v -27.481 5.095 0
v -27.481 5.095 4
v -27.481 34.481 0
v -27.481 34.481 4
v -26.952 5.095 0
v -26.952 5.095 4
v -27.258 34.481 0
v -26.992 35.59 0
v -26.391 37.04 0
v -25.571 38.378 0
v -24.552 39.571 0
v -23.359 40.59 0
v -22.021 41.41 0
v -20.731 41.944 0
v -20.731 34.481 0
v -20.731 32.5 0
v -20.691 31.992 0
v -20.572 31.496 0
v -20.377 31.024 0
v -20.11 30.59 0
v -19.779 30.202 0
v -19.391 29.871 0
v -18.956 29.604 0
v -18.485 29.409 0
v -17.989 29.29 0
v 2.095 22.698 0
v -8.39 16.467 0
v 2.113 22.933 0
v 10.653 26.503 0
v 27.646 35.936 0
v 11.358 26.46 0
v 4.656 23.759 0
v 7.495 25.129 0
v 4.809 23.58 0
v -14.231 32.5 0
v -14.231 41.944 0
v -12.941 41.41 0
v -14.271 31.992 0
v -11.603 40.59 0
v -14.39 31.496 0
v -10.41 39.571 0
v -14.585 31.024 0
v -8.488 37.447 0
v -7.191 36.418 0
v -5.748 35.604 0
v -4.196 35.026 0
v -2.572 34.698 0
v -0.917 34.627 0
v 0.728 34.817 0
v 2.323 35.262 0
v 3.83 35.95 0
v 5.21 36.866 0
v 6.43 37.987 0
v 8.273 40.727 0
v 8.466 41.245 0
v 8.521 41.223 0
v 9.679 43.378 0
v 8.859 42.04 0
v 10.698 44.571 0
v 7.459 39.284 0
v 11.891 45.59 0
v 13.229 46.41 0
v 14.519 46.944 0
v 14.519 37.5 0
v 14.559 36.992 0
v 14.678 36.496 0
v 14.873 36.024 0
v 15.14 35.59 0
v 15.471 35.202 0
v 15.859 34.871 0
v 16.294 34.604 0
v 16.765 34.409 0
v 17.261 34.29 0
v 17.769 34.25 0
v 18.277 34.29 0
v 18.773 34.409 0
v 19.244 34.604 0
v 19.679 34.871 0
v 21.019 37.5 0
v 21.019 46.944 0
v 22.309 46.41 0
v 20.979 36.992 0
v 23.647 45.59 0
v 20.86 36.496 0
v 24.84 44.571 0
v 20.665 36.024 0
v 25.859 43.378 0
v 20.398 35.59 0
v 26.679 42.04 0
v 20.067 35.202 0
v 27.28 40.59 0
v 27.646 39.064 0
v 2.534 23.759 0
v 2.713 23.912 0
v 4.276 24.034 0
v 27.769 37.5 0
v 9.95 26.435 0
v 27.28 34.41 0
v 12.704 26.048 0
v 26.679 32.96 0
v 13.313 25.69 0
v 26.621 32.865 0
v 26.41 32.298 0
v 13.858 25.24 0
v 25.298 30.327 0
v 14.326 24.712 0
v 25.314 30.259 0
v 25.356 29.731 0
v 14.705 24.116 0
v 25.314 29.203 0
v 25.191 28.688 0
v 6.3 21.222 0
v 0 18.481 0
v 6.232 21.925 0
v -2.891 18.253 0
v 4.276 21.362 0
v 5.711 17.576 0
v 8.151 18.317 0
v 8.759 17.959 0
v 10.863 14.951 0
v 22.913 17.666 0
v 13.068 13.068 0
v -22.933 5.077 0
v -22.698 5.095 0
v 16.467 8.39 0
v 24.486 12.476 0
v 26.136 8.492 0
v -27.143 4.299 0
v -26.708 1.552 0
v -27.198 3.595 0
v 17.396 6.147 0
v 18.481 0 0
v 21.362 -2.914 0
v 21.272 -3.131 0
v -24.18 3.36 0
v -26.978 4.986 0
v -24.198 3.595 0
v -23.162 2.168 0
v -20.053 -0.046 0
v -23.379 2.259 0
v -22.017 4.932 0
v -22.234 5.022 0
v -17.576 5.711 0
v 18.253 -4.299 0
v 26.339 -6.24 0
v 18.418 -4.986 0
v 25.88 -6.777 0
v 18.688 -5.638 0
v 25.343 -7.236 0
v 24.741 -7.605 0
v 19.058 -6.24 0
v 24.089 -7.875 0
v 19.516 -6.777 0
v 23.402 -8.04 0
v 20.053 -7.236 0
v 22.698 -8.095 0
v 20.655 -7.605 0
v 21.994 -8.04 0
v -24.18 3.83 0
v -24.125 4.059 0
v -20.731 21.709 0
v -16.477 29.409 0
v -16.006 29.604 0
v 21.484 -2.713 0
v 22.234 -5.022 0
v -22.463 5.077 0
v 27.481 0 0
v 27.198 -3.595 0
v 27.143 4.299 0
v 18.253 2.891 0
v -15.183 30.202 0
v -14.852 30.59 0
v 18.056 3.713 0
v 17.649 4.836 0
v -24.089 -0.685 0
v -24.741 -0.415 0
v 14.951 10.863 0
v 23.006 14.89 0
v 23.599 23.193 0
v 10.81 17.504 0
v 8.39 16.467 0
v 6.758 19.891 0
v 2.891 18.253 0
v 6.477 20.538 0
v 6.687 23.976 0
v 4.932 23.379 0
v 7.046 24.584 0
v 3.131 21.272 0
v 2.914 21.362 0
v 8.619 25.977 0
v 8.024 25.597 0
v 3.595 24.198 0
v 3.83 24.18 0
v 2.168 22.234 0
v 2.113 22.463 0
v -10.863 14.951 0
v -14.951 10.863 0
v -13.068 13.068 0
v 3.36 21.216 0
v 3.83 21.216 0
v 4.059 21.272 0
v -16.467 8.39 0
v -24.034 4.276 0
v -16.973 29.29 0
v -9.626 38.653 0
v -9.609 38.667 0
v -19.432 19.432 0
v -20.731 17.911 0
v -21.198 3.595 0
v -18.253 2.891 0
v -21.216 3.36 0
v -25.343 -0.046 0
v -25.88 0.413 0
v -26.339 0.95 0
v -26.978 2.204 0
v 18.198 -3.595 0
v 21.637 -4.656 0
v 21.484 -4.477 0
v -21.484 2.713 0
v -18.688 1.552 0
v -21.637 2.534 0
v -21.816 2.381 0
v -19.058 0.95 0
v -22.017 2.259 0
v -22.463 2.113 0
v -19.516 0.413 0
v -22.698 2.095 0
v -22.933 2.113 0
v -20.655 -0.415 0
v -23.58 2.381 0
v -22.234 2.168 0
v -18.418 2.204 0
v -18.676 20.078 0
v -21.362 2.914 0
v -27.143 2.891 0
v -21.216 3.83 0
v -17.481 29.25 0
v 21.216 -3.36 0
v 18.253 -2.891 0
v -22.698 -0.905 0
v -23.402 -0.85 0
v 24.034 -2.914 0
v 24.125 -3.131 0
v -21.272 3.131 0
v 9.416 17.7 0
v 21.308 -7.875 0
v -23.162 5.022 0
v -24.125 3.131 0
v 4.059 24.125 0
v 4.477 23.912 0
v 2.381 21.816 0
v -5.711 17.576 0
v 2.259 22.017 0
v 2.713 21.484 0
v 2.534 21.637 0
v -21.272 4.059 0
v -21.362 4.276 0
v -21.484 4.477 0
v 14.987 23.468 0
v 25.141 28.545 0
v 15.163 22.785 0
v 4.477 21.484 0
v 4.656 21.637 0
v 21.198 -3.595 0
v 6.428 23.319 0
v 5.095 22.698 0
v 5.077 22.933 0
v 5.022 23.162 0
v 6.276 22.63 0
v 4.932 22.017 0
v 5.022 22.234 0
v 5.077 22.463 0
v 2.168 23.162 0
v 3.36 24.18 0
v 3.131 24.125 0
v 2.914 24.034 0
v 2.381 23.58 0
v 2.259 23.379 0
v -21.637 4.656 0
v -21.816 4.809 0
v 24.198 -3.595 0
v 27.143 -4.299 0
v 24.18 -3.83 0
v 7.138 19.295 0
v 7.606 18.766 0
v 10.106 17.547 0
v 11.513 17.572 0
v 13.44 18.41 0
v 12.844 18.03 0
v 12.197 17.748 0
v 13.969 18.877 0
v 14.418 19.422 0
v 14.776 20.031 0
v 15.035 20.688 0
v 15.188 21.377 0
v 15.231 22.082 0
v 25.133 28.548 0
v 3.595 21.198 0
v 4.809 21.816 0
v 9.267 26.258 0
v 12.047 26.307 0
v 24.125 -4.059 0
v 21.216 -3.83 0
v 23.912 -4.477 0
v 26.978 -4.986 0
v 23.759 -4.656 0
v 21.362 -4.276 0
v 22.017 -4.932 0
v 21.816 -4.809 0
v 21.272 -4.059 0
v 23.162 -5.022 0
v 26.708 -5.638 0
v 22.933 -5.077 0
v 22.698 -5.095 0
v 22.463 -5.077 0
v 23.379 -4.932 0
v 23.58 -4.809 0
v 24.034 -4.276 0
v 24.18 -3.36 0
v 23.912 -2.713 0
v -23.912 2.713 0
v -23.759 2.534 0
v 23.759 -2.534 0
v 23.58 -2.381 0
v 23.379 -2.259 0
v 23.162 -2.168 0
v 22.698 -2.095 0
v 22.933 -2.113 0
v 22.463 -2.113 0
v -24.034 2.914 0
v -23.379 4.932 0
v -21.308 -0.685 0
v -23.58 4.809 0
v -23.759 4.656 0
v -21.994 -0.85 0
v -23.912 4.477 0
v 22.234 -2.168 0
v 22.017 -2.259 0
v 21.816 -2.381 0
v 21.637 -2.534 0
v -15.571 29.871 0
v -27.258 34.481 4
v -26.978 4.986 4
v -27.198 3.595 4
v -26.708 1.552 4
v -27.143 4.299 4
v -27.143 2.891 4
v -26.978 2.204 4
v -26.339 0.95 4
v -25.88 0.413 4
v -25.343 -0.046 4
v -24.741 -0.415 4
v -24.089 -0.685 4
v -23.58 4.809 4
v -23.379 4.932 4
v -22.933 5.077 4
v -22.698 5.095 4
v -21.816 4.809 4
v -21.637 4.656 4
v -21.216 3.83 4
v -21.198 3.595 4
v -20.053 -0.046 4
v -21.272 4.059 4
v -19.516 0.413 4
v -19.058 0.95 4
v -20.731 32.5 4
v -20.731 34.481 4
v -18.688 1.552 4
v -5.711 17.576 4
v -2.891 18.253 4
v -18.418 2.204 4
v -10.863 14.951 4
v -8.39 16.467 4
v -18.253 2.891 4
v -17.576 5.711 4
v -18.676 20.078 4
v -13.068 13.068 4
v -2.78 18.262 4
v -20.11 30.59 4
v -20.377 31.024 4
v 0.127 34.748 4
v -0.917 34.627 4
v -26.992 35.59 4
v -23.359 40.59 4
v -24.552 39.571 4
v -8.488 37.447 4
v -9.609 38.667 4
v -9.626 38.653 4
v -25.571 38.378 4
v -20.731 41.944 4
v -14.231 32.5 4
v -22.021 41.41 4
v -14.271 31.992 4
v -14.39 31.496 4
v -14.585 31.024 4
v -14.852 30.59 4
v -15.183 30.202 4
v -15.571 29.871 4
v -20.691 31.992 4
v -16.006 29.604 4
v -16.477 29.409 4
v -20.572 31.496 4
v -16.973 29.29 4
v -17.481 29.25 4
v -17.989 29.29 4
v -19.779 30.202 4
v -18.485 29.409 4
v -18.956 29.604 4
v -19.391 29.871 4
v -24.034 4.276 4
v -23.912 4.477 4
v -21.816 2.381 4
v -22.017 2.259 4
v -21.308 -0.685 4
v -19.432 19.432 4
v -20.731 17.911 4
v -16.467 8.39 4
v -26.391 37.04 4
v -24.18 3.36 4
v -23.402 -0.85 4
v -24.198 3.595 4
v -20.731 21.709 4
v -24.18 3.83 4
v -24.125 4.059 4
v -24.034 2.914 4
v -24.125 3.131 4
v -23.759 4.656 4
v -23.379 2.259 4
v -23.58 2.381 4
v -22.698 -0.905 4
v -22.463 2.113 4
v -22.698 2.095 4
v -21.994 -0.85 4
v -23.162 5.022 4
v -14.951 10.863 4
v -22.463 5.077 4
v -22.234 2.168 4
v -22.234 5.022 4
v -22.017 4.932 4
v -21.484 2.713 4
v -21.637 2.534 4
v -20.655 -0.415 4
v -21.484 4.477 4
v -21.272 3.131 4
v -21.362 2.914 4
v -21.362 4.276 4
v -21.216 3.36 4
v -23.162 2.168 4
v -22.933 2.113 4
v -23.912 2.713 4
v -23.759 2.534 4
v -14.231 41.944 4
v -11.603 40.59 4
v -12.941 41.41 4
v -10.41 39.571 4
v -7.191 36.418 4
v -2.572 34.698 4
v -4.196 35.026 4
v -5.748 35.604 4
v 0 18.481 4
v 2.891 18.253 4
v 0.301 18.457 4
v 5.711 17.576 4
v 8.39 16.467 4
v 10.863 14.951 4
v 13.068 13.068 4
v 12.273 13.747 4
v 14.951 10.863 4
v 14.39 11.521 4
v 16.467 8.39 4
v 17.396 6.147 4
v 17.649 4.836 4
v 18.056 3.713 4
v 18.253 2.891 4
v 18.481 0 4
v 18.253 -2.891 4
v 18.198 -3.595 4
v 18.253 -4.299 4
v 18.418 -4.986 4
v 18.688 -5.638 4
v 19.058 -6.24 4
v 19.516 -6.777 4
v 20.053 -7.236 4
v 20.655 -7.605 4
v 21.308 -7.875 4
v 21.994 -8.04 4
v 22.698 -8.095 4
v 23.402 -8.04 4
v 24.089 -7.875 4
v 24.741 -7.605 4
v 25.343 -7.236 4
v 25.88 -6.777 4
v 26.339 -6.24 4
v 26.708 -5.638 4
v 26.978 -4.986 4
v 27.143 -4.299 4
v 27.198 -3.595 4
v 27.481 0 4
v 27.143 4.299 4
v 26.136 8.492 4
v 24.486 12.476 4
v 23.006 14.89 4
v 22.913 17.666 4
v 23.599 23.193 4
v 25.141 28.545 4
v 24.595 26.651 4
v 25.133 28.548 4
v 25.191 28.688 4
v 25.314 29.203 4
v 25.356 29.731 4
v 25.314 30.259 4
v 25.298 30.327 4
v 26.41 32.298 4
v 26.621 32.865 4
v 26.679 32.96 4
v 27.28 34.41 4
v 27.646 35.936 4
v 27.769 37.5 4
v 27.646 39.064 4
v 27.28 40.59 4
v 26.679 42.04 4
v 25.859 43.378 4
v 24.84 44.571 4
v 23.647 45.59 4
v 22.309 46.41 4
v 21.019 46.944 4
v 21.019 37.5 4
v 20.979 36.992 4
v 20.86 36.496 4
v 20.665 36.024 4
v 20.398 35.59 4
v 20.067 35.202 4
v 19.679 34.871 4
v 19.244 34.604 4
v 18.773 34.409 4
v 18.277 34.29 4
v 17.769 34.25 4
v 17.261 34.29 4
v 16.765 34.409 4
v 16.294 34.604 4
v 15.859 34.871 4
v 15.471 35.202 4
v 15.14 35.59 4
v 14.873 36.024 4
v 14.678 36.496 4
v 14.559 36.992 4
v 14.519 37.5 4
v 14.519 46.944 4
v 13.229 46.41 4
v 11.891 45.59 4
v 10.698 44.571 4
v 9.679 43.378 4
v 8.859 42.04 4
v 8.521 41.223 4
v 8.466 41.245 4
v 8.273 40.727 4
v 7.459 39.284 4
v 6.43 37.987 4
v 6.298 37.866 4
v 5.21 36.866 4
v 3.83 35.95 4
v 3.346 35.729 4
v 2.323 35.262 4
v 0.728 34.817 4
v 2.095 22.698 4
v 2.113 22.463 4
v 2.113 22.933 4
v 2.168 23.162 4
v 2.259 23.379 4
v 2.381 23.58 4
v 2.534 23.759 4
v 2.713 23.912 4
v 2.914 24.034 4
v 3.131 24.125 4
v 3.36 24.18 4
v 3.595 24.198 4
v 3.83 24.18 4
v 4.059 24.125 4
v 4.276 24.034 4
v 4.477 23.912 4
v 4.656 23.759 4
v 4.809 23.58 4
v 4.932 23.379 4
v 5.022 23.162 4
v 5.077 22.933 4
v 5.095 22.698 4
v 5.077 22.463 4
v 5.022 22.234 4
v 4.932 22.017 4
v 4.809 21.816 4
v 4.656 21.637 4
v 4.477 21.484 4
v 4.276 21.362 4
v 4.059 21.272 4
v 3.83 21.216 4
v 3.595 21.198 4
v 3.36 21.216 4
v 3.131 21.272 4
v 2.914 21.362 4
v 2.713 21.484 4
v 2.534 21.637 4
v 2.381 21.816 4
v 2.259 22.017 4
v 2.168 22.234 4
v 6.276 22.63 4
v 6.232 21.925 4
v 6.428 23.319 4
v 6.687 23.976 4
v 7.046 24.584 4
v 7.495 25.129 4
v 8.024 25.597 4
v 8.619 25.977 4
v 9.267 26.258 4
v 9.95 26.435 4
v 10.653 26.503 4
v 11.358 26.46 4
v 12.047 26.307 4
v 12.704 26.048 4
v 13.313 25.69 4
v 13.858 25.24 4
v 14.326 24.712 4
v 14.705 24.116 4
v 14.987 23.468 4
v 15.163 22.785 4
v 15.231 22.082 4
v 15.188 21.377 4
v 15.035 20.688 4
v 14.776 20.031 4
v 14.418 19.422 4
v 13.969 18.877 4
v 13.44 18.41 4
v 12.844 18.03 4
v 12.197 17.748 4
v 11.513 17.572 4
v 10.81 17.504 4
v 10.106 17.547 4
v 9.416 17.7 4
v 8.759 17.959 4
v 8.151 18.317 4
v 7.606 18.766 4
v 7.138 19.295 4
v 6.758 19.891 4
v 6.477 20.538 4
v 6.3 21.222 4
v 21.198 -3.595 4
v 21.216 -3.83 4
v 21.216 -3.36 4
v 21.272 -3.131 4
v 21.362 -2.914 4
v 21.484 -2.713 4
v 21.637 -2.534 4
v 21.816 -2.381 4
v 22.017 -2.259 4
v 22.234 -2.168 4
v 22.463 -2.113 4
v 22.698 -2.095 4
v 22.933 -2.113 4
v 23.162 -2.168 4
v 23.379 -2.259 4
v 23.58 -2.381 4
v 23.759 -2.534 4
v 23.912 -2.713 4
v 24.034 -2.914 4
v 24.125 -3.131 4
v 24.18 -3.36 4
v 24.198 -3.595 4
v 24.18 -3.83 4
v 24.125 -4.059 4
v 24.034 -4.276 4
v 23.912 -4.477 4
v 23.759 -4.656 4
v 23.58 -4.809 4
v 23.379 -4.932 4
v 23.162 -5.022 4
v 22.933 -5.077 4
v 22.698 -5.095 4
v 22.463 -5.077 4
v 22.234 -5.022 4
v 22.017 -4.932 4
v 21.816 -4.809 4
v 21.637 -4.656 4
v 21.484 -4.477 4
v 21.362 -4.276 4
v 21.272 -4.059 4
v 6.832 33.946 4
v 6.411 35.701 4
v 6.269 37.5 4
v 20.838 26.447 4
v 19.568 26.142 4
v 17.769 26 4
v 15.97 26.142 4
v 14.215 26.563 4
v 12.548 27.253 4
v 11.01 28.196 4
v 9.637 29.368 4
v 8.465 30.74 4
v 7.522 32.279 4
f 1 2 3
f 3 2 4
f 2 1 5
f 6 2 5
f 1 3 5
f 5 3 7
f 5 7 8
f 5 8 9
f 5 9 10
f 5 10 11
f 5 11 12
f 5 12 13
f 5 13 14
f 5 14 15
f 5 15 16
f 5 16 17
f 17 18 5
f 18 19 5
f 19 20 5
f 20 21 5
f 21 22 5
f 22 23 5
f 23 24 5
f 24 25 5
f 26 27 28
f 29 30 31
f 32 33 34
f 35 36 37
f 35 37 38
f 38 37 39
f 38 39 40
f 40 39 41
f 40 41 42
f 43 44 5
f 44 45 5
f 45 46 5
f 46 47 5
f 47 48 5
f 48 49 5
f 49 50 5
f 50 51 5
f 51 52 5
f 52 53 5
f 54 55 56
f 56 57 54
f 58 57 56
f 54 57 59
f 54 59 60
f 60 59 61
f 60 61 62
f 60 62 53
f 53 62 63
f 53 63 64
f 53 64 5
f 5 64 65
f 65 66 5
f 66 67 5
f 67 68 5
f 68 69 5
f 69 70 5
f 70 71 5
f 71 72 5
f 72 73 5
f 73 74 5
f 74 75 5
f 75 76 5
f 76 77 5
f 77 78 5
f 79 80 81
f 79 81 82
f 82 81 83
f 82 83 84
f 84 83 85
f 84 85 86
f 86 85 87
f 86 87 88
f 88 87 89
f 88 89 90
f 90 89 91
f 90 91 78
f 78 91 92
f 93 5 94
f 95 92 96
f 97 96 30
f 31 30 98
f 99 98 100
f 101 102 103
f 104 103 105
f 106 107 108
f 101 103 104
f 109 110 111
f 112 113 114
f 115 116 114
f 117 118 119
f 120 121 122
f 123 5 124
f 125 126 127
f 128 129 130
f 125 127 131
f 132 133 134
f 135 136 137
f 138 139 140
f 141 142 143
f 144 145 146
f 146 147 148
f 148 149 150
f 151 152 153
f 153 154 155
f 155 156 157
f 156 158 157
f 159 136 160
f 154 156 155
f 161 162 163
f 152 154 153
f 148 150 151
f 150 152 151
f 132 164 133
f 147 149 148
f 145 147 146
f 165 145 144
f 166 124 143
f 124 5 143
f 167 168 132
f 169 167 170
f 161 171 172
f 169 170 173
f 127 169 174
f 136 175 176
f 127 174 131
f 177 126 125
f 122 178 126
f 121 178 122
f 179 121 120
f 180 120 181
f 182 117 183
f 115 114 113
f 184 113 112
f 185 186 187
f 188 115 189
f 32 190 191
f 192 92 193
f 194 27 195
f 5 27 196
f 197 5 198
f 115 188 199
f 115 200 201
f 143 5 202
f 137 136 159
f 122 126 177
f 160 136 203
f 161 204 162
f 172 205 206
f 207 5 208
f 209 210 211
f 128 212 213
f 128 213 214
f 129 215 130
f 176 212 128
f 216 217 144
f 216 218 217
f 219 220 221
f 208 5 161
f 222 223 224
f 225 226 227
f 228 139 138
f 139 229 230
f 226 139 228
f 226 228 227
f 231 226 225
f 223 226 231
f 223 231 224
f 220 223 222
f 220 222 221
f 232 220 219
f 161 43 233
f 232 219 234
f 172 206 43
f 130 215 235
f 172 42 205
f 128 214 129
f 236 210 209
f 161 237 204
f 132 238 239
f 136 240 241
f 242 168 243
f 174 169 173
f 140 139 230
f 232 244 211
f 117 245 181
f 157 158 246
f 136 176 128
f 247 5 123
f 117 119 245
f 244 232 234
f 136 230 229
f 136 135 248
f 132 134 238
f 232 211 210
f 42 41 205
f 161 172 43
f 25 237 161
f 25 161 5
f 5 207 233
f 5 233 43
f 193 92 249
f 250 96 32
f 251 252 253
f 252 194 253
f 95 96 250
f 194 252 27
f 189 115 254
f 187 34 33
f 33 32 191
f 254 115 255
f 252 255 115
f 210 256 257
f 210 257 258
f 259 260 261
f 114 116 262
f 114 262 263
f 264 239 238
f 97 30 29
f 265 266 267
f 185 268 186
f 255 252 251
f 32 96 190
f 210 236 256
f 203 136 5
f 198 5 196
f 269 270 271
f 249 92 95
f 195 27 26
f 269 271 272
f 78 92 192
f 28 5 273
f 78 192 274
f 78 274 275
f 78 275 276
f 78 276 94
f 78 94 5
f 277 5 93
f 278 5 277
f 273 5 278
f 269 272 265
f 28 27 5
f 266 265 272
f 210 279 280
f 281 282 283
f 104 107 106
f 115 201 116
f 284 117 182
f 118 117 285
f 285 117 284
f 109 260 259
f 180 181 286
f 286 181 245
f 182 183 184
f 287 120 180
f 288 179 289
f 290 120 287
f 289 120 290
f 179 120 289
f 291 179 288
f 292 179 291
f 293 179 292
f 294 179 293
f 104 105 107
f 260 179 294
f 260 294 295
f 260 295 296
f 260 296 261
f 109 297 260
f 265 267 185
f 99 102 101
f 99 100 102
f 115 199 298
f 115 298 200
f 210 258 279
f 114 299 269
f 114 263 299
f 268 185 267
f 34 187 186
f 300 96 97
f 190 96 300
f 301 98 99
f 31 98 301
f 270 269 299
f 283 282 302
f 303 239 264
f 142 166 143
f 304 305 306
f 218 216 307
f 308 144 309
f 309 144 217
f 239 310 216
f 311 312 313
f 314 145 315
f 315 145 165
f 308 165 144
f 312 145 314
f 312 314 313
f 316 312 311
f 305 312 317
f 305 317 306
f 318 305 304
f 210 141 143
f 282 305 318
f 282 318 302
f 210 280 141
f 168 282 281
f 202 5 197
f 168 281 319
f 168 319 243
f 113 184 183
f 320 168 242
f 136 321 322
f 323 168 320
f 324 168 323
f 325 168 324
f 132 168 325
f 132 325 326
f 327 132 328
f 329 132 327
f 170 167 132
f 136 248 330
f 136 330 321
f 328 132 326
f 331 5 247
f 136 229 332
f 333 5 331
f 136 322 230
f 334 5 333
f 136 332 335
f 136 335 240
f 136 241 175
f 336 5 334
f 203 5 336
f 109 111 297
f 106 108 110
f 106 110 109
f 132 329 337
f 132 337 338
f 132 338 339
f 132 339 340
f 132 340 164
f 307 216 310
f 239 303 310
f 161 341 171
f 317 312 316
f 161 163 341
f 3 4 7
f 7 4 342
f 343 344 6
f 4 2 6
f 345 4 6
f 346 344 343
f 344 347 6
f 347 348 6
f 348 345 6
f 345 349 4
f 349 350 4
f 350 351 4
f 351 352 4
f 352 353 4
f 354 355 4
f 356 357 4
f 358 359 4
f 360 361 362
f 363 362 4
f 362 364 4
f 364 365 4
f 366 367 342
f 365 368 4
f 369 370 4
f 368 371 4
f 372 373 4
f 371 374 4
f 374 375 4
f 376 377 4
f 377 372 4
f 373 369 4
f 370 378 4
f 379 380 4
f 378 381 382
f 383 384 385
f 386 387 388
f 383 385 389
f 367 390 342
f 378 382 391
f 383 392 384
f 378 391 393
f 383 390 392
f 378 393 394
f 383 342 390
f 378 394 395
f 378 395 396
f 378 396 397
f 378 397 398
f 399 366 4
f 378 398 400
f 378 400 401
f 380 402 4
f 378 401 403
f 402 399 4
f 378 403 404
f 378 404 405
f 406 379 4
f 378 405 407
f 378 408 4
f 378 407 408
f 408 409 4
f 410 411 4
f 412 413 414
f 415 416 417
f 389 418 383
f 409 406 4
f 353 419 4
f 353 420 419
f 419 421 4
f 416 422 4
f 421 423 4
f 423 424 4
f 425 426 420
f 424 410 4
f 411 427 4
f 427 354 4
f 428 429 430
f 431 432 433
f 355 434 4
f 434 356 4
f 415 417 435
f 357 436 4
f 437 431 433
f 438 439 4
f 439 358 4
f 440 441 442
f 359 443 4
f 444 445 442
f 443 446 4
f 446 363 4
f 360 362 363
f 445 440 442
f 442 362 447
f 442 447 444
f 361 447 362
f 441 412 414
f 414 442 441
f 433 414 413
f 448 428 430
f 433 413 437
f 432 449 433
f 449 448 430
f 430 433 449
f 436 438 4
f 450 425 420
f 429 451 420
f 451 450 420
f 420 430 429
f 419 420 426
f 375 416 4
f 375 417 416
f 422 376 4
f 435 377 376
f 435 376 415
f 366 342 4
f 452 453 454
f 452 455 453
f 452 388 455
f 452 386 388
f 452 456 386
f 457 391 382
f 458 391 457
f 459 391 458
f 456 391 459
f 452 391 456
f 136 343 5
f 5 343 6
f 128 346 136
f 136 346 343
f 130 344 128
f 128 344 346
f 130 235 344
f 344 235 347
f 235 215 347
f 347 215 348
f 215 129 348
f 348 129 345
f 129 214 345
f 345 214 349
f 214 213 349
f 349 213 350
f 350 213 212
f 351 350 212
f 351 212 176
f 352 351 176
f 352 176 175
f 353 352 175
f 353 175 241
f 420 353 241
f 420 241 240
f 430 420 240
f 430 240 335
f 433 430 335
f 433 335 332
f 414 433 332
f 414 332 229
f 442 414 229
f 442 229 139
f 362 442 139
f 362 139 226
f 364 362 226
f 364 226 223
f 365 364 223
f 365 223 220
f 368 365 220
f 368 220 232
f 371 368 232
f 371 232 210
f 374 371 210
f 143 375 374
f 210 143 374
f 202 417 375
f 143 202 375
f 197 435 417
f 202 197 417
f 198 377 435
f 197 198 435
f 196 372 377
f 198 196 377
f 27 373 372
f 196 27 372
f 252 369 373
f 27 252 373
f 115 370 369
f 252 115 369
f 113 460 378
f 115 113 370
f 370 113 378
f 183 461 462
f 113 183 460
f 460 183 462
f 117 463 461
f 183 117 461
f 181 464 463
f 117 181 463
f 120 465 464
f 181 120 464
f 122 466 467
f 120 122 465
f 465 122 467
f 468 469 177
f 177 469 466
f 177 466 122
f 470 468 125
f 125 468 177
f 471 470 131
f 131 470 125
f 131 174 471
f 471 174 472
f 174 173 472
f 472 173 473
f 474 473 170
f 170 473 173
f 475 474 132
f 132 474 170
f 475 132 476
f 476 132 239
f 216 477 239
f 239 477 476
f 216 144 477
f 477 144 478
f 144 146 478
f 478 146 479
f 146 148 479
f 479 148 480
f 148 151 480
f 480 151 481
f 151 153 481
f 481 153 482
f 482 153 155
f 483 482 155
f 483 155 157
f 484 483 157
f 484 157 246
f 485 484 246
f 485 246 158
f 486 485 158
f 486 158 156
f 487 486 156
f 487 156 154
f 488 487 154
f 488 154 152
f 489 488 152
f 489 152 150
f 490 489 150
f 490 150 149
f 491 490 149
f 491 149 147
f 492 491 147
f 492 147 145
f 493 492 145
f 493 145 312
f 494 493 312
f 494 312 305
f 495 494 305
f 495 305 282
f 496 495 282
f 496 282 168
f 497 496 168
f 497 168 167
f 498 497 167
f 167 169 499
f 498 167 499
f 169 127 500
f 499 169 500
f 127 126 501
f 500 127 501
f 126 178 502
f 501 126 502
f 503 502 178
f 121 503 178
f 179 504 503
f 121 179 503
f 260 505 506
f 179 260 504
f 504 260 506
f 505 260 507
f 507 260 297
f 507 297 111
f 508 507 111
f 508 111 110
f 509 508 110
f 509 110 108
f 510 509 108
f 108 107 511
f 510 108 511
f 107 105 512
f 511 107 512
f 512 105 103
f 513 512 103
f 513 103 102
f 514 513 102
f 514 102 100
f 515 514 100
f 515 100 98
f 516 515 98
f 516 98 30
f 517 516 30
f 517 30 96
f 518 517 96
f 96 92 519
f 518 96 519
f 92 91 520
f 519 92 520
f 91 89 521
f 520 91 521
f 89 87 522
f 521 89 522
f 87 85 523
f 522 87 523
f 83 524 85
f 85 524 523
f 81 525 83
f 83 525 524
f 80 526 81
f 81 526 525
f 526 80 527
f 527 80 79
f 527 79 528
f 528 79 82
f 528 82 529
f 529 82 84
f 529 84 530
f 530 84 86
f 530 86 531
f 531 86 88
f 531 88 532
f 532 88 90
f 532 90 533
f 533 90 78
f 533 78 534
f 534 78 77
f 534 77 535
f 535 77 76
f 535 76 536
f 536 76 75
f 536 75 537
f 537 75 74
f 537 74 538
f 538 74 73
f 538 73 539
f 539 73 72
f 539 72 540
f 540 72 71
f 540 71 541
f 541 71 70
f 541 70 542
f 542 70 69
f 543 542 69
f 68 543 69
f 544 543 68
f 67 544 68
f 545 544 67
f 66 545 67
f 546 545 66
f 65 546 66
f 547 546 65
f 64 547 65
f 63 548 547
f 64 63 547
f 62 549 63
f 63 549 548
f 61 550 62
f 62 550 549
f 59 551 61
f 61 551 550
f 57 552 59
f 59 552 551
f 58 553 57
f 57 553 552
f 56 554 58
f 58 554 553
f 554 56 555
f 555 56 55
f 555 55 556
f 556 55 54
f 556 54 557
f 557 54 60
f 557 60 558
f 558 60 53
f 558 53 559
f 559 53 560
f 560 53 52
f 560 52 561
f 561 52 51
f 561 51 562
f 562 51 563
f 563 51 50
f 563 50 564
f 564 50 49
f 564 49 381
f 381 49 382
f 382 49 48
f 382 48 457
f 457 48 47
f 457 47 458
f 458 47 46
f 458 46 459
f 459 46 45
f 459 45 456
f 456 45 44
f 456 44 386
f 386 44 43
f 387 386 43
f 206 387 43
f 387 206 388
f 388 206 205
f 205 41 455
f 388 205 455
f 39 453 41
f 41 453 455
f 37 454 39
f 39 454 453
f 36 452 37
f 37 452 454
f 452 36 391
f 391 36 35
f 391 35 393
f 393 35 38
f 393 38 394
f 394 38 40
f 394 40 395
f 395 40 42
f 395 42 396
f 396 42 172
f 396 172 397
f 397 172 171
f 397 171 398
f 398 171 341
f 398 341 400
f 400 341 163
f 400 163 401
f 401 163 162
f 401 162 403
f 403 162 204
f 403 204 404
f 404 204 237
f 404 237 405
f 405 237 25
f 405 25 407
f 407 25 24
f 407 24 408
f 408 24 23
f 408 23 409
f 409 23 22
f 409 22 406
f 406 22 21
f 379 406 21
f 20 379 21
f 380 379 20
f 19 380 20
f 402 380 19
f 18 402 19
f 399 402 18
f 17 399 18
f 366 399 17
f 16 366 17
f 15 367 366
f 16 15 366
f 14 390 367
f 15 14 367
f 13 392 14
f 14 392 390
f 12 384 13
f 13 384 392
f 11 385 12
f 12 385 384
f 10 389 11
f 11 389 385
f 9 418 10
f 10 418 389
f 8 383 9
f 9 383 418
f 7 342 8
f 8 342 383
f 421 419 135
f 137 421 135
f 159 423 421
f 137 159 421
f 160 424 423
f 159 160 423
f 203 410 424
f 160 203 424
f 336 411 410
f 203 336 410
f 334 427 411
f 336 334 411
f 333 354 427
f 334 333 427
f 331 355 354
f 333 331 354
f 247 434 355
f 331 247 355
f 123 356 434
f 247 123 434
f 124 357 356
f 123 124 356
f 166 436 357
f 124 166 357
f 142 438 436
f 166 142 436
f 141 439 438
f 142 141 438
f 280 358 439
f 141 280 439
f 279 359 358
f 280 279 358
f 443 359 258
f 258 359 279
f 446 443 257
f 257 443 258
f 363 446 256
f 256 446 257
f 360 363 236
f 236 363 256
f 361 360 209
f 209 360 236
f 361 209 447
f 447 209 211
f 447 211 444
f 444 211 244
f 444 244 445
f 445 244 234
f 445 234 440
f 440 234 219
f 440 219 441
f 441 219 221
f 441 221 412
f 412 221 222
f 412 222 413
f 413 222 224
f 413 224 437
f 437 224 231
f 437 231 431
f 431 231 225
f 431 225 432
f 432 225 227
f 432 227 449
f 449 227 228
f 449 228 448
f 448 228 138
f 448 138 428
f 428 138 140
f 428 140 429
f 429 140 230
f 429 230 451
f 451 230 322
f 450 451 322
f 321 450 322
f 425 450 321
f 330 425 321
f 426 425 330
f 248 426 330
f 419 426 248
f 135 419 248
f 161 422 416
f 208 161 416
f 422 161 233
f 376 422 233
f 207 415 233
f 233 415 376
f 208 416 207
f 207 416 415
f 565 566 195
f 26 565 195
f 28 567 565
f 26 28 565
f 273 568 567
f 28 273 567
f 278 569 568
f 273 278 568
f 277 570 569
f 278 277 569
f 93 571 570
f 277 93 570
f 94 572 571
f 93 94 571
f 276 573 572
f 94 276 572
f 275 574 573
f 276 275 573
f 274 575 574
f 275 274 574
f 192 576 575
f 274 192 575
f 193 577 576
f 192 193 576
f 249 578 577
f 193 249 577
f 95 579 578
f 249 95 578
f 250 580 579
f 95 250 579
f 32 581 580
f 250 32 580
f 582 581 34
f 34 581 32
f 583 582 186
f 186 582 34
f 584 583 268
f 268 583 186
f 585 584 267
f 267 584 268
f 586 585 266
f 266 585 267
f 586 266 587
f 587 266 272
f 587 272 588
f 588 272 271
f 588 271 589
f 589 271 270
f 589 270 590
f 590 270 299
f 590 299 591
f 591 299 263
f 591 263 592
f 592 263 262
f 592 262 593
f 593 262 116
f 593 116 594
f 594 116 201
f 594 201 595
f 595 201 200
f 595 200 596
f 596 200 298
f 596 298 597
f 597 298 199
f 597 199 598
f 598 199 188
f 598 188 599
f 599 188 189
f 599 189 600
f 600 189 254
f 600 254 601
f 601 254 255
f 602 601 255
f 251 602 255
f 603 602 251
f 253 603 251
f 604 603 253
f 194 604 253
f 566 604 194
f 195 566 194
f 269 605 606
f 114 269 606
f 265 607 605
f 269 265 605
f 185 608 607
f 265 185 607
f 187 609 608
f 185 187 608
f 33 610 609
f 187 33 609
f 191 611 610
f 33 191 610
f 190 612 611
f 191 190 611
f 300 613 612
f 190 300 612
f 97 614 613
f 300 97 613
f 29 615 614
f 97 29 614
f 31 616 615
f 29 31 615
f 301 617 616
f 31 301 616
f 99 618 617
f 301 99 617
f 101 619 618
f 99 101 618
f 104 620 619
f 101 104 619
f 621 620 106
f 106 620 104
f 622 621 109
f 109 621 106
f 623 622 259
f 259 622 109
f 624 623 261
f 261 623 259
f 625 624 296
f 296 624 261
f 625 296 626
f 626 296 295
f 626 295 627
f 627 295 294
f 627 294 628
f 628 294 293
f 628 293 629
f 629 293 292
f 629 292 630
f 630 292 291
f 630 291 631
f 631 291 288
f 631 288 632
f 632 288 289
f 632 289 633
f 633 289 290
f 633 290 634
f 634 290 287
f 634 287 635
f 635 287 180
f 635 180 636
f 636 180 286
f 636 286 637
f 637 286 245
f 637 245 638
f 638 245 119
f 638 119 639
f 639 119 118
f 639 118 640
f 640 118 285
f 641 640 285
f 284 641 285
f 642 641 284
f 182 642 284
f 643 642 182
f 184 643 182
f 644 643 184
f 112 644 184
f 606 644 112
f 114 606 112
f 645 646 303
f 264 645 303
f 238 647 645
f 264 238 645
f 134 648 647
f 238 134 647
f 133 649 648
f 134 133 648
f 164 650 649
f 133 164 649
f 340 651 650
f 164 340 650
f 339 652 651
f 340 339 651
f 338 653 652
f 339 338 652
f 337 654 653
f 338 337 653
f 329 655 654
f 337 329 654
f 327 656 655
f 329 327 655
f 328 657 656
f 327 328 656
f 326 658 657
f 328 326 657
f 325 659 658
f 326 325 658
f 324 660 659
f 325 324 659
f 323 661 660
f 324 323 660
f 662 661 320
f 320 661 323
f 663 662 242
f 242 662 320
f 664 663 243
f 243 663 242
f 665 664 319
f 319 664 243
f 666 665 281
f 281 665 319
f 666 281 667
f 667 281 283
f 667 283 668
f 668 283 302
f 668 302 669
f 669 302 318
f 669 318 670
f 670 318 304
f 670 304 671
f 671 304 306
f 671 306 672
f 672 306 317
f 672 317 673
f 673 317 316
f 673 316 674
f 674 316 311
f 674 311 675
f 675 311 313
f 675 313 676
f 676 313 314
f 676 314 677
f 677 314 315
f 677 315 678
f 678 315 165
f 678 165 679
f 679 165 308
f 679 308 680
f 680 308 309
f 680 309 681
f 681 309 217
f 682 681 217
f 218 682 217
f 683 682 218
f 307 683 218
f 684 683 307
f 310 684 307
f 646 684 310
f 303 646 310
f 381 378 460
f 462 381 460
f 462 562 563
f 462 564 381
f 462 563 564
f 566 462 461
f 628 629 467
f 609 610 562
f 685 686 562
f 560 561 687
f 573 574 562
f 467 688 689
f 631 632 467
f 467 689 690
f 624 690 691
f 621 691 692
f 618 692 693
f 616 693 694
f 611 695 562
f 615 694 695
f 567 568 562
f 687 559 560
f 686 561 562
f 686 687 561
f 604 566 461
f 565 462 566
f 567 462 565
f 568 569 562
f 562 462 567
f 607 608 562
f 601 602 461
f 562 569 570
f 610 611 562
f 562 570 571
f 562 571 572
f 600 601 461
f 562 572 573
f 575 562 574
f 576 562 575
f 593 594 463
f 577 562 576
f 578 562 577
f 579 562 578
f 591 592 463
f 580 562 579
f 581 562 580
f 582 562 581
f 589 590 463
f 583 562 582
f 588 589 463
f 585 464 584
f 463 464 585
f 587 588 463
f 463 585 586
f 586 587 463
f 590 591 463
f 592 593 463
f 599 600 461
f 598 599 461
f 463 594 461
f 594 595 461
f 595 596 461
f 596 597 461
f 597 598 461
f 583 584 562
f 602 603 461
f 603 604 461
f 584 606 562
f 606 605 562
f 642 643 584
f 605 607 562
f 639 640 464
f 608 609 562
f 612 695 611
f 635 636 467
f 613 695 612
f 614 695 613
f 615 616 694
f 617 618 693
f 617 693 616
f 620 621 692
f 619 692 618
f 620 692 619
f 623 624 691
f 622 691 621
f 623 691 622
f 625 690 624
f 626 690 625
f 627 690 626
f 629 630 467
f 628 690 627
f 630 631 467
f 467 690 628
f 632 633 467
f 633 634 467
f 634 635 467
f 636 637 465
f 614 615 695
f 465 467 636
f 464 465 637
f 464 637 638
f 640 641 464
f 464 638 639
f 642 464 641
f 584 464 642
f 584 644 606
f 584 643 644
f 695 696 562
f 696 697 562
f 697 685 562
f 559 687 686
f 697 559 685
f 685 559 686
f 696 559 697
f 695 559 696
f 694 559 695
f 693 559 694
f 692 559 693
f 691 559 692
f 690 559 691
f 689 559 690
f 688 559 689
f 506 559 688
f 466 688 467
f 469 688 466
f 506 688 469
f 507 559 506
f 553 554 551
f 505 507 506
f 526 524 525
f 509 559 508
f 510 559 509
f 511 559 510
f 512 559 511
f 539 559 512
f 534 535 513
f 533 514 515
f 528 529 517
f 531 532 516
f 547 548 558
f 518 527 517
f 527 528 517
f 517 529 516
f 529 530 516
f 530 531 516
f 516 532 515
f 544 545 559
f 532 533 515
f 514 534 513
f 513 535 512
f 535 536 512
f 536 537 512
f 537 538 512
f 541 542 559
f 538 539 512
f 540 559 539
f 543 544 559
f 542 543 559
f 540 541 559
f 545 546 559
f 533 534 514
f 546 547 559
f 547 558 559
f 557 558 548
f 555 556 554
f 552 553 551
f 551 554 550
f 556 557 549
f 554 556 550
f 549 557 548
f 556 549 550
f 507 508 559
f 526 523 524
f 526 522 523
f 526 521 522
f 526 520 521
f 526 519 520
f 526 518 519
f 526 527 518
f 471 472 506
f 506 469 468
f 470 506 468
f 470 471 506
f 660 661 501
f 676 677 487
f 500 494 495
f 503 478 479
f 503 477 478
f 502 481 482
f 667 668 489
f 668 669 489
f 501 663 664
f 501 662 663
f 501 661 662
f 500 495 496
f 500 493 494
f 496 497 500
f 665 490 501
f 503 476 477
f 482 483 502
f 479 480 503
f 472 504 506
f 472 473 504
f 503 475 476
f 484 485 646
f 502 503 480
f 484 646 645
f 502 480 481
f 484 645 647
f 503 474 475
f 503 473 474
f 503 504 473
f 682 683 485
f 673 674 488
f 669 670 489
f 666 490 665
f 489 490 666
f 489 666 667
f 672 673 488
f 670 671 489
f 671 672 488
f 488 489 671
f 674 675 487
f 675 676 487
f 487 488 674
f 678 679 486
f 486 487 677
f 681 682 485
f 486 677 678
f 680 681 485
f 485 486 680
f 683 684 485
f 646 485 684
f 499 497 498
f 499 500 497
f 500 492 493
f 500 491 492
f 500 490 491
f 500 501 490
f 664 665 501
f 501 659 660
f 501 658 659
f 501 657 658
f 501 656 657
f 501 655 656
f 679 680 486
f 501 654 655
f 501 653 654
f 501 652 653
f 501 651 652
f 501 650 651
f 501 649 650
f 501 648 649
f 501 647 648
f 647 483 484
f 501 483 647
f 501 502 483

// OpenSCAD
// file: arc.scad
/* Yet Another Arc Library
 * Calculates an arc by cutting apart cylinders. Only good in the z plane.
 * What's kind of nice is that you can jsut specify what the coordinates of
 * your arc should start and end at.
 * Only good up to 180 degrees.
 */

function scalar(vec) = sqrt(pow(vec.x, 2) + pow(vec.y, 2) + pow(vec.z, 2));

module arc(startCoordinates, endCoordinates, degrees, height, width) {
	deltaCoordinates = endCoordinates - startCoordinates;
	currArcLength = scalar(deltaCoordinates);
	radius = currArcLength / (2 * sin(degrees/2));
	
	render() {
		translate(endCoordinates)
			rotate(atan2(-deltaCoordinates.y, -deltaCoordinates.x))
				lineUpArc(currArcLength, degrees, radius, height, width);
		translate(endCoordinates)
			cylinder(h = height, d = width);
		translate(startCoordinates)
			cylinder(h = height, d = width);
	}
}

module lineUpArc(currArcLength, degrees, radius, height, width) {
	outerArcDiameter = radius * 2 + width;
	innerArcDiameter = radius * 2 - width;
	translate([currArcLength/2,-cos(degrees / 2)*radius,0])
		rotate(degrees / 2)
			roughArc(outerArcDiameter, innerArcDiameter, degrees, height);
}

module roughArc(outerArcDiameter, innerArcDiameter, degrees, height) {
	difference() {
		rotate(180 - degrees) difference() {
			hollowCylinder(outerArcDiameter, innerArcDiameter, height);
			translate([-outerArcDiameter / 2, -outerArcDiameter / 2, 0])
			cube([outerArcDiameter / 2, outerArcDiameter, height]);
		}
		translate([-outerArcDiameter / 2, -outerArcDiameter / 2, 0])
			cube([outerArcDiameter / 2, outerArcDiameter, height]);
	}
}

module hollowCylinder(outerArcDiameter, innerArcDiameter, height) {
	difference() {
		cylinder(h = height, d = outerArcDiameter);
		cylinder(h = height, d = innerArcDiameter);
	}
}


// BEGIN TESTS
// Several Different Arcs

translate([0, 0, 0])
	arc([0,0,0], [0,5,0], 30, 7, 1);

translate([20, 0, 0])
	arc([0,0,0],  [0,5,0], 45, 7, 1);

translate([40, 0, 0])
	arc([-5,0,0],  [0,5,0], 90, 7, 1);

translate([60, 0, 0])
	arc([5,0,0],  [0,5,0], 135, 7, 1);

translate([80, 0, 0])
	arc([0,0,0],  [0,5,0], 180, 7, 1);
// file: y-clip-assembly.scad
use<arc.scad>;

module clipMouth(height, mouthWidth, clipDiameter) {
	cylinder(h = height, d = mouthWidth);
	translate([-mouthWidth / 2, 0, 0])
		cube([mouthWidth, clipDiameter/2, height]);
}
module clipFill(height, clipHeadDiameter, clipSeparation, fillWidth) {
	//Clip heads
	cylinder(h = height, d = clipHeadDiameter);
	translate(clipSeparation)
		cylinder(h = height, d = clipHeadDiameter);

	// Filler
	arc([0,0,0], clipSeparation, 120, height, clipHeadDiameter);

}

module clipAssembly(
	height, clipSeparation, clipHeadDiameter, mouthWidth) {
	difference() {
		clipFill(height, clipHeadDiameter, clipSeparation, mouthWidth);
		clipMouth(height, mouthWidth, clipHeadDiameter);
		translate(clipSeparation)
			clipMouth(height, mouthWidth, clipHeadDiameter);
	}
}

clipAssembly(5, [30, 5, 0], 20, 5);
// file: y-motor-assembly.scad
use<arc.scad>;

module drawMotorAssembly(height, spacing, screwHoleDiameter, thickness) {
	motorHoleDiameter = sqrt(spacing * spacing * 2);
	motorHoleRadius = motorHoleDiameter / 2;
	difference() {
		arc([motorHoleRadius, 0, 0],
			[-motorHoleRadius, 0, 0],
			180, height, thickness * 2 + screwHoleDiameter);
		drawMotorScrews(height, motorHoleDiameter, screwHoleDiameter);
	}
}

module drawMotorScrews(height, motorHoleDiameter, screwHoleDiameter) {
	translate([motorHoleDiameter / 2,0,0])
		cylinder(h = height, d = screwHoleDiameter);
	translate([-motorHoleDiameter / 2,0,0])
		cylinder(h = height, d = screwHoleDiameter);
	translate([0, motorHoleDiameter / 2, 0])
		cylinder(h = height, d = screwHoleDiameter);
}


drawMotorAssembly(5, 30, 3, 3);
// main file
$fn=40;

use<y-motor-assembly.scad>;
use<y-clip-assembly.scad>;
use<arc.scad>;

// Settings for this assembly.
// Everything is in millimeters.
clipWidth = 6.5;
clipSeparation = [32 + clipWidth / 2, 5, 0];

clipHeadDiameter = 20;

screwHoleDiameter = 3;
wirePortDiameter = 9;
beltSpace = 3;
thinWidth = 4;
beltWidth = 7;
minimumThickness = 3;

motorHoleSpacing = 34 - screwHoleDiameter / 2;

motorHoleDiameter = sqrt(motorHoleSpacing *motorHoleSpacing * 2);

assemblyBottom = - motorHoleDiameter / 2
			- minimumThickness
			- screwHoleDiameter / 2;

assemblyTop = motorHoleDiameter/2;

panelWidth = thinWidth;

motorHoleDiameter = sqrt(motorHoleSpacing * motorHoleSpacing * 2);
outerMotorHoleDiameter = motorHoleDiameter
	+ minimumThickness
	+ screwHoleDiameter;

motorTwist = -9;

barThickness = clipHeadDiameter / 2 - clipWidth /2;

module drawFilledPanel() {

	
	difference() {
		translate([assemblyBottom + clipHeadDiameter / 2 , motorHoleSpacing, 0]) {
	    		clipAssembly(
				panelWidth,
				clipSeparation,
				clipHeadDiameter,
				clipWidth);
		}
		cylinder(h = panelWidth, d = outerMotorHoleDiameter);
	}
	rotate([0,0,motorTwist])
	drawMotorAssembly(
		panelWidth,
		motorHoleSpacing,
		screwHoleDiameter,
		minimumThickness);

	difference() {
		translate([assemblyBottom,
				screwHoleDiameter / 2 - motorHoleDiameter/2 * sin(motorTwist),
				0])
			cube([barThickness,
				motorHoleDiameter / 2 + clipHeadDiameter / 2 + motorHoleDiameter/2 * sin(motorTwist),
				panelWidth]);
		translate([-motorHoleDiameter / 2, 0, 0])
			cylinder(h = panelWidth, d = screwHoleDiameter);
	}
	difference() {
		arc(	[	assemblyTop - 1,
				motorHoleDiameter / 2 + clipHeadDiameter/2 - clipWidth/2,
				0],
			[assemblyTop, 0,0],
			45, panelWidth, barThickness );
		rotate([0,0,motorTwist])
		translate([motorHoleDiameter / 2, 0, 0])
			cylinder(h = panelWidth, d = screwHoleDiameter);
	}
}

difference() {
	drawFilledPanel();
	rotate([0,0,-26])
	translate([ 0, motorHoleDiameter/2 - screwHoleDiameter/2 + minimumThickness, 0])
		cylinder(h = panelWidth, d = wirePortDiameter);
	translate([3,0,thinWidth])
		rotate([0,0,-34])
			cube([beltSpace, 100, beltWidth]);

	translate([-3 - beltSpace,0,thinWidth])
		rotate([0,0,-10])
			cube([beltSpace, 100, beltWidth]);

	translate([assemblyBottom + clipHeadDiameter / 2, motorHoleSpacing, thinWidth] + clipSeparation) {
		cylinder(h = beltWidth, d = clipHeadDiameter + 3);
	}
	
}
